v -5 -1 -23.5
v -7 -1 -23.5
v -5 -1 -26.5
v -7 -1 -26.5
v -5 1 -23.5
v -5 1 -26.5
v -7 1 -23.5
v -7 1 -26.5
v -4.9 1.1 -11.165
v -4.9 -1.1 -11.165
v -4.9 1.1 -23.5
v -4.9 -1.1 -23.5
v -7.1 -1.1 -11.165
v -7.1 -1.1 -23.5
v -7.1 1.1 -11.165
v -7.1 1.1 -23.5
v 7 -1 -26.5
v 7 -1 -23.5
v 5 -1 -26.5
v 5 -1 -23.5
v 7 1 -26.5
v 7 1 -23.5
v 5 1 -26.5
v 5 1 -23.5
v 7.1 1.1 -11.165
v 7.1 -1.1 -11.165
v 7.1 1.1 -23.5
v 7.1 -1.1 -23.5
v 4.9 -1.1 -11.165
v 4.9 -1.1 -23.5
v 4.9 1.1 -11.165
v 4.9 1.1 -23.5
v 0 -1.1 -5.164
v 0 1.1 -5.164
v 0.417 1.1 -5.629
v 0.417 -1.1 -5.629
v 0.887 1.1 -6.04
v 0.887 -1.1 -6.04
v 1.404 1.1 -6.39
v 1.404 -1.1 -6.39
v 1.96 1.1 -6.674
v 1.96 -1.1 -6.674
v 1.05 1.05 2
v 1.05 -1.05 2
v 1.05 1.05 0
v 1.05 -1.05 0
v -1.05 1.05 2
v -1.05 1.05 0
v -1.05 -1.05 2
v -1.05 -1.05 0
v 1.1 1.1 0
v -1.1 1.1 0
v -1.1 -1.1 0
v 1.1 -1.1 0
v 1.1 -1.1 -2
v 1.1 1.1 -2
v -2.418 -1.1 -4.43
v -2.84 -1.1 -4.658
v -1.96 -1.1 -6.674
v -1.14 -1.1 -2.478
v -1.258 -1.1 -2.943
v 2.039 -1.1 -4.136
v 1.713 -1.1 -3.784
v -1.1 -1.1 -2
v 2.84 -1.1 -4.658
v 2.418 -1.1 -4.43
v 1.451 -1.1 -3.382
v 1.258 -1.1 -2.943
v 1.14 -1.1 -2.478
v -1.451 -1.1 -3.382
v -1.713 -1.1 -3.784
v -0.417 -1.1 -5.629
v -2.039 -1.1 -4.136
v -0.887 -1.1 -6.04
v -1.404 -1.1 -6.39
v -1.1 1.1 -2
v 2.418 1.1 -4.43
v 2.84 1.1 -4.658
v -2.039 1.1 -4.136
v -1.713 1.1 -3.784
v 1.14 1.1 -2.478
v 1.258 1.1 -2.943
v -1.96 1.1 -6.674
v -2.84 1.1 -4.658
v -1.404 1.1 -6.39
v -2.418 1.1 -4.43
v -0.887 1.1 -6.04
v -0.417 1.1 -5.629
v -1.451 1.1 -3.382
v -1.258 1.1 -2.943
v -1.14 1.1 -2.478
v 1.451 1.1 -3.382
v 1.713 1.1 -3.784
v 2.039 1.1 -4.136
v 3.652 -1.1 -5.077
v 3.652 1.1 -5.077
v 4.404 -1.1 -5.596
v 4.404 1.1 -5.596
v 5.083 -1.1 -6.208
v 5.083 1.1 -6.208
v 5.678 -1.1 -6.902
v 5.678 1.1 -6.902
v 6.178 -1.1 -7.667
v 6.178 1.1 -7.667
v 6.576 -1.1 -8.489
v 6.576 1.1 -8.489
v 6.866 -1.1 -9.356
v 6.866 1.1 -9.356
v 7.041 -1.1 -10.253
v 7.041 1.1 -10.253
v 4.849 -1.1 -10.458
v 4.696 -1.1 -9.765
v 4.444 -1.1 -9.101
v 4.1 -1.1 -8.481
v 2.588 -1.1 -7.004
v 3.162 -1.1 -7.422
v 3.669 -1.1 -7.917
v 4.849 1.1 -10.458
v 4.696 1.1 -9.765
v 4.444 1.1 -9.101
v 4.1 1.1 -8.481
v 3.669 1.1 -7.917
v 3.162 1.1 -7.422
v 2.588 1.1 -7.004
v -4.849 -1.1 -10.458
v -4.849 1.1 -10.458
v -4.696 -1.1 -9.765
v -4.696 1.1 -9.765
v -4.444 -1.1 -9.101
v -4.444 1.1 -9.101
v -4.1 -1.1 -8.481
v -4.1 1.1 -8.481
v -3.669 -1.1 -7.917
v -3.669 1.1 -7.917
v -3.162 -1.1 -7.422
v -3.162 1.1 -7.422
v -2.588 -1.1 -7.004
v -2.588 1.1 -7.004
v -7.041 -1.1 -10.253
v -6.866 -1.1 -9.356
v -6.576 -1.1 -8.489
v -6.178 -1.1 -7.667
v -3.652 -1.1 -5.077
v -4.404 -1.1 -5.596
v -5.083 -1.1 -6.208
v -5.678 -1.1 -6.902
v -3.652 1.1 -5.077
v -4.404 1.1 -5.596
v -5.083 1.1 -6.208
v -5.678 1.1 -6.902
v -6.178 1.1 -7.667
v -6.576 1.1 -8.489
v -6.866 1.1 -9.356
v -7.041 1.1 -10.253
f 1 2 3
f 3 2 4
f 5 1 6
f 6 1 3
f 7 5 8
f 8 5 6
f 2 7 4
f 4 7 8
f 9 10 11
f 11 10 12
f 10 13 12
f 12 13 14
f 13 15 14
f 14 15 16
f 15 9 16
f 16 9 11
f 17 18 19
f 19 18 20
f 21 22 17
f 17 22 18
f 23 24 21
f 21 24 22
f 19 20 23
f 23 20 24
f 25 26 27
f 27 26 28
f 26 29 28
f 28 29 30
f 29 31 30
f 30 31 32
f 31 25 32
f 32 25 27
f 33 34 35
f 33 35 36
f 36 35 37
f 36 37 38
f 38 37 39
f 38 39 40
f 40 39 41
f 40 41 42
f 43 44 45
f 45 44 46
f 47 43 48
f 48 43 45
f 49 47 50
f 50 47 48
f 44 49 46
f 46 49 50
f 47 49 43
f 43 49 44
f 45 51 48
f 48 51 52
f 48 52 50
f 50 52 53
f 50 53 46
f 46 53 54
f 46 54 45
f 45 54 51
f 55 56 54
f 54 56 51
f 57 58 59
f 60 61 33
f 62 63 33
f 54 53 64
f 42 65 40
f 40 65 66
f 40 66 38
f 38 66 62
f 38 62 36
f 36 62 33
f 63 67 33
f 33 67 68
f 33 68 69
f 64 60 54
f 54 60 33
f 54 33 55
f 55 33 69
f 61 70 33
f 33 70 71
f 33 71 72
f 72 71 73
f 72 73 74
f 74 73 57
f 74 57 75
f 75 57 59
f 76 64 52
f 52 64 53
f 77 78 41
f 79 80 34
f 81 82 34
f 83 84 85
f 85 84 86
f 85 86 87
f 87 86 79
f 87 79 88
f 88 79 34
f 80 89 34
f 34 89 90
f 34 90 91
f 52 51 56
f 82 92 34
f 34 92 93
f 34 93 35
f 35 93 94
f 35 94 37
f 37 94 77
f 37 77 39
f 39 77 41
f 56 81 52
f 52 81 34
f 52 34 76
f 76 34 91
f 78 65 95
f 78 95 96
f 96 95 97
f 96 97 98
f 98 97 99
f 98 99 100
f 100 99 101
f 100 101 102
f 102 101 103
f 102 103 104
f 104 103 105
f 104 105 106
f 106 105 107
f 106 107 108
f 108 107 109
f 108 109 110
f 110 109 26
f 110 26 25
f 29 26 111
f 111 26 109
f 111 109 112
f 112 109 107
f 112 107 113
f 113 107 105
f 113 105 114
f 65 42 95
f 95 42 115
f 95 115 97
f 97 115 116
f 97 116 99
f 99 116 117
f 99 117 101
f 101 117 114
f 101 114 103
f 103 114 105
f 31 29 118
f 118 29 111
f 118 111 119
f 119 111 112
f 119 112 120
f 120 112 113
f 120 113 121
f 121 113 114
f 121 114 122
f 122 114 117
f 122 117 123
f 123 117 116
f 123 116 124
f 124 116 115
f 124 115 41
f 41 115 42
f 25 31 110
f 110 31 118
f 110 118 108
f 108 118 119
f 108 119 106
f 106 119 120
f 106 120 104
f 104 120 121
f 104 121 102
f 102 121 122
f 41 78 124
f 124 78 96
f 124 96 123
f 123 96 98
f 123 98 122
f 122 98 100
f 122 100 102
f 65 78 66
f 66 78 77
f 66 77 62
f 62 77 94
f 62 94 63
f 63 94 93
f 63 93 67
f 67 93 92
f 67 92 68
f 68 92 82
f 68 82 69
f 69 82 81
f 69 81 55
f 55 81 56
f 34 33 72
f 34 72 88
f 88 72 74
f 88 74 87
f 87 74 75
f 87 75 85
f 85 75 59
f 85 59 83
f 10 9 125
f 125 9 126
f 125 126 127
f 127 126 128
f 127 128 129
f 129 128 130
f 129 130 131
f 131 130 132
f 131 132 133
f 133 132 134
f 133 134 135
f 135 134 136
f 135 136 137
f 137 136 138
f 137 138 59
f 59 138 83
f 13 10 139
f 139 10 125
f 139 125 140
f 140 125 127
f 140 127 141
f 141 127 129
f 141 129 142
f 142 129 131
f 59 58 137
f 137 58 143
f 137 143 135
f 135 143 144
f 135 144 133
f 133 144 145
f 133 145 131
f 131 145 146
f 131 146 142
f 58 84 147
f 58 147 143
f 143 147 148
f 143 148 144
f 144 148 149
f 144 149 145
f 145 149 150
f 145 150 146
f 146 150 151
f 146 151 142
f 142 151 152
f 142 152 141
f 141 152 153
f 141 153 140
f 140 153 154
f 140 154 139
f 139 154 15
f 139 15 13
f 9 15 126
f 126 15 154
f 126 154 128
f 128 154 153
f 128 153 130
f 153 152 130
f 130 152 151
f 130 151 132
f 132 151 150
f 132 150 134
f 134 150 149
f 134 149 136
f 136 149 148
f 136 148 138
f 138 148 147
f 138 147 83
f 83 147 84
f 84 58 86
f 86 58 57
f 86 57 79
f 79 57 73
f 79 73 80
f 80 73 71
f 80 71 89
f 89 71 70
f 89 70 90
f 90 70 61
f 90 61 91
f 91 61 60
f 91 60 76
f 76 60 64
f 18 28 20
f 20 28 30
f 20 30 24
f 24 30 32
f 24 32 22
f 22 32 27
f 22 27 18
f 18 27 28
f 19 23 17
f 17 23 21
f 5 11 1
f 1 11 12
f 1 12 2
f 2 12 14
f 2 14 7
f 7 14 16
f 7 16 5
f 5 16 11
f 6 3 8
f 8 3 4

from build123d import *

# Parameters (mm, degrees)
SKETCH1_W           = 2.1
SKETCH1_H           = 2.1
BOSS_EXTRUDE1_DEPTH = 2
SKETCH4_W           = 2.2
SKETCH4_H           = 2.2
BOSS_EXTRUDE3_DEPTH = 2
SWEEP4_START        = -1.1
SWEEP4_DEPTH        = 2.2
SKETCH8_W           = 2.2
SKETCH8_H           = 2.2
SKETCH8_W_2         = 2
SKETCH8_H_2         = 2
CUT_EXTRUDE2_DEPTH  = 5
SKETCH9_W           = 2
SKETCH9_H           = 2
CUT_EXTRUDE3_DEPTH  = 2


# Read off the part's stored shape, not the designer's step: Sweep4
with BuildPart() as part:
    # Sketch1 → Boss-Extrude1 (new body)
    with BuildSketch(Plane.XY):
        Rectangle(SKETCH1_W, SKETCH1_H)
    extrude(amount=BOSS_EXTRUDE1_DEPTH)

    # Sketch4 → Boss-Extrude3 (add)
    with BuildSketch(Plane.XY):
        Rectangle(SKETCH4_W, SKETCH4_H)
    extrude(amount=-BOSS_EXTRUDE3_DEPTH)

    # Sweep4 outline → Sweep4 (add)
    with BuildSketch(Plane(origin=(0, 0, 0), x_dir=(1, 0, 0), z_dir=(0, 1, 0)).offset(SWEEP4_START)):
        with BuildLine():
            Line((7.09999865, 11.165148445), (7.09999919, 28.5))
            Line((7.09999919, 28.5), (4.89999919, 28.5))
            Line((4.89999919, 28.5), (4.89999865, 11.165148445))
            ThreePointArc((4.89999865, 11.165148445), (4.099633159, 8.481308894), (1.959999989, 6.674225732))
            ThreePointArc((1.959999989, 6.674225732), (-0.2669663, 4.793384792), (-1.1, 2))
            Line((-1.1, 2), (1.1, 2))
            ThreePointArc((1.1, 2), (1.573685829, 3.588395274), (2.839999687, 4.657893766))
            ThreePointArc((2.839999687, 4.657893766), (5.940285288, 7.276319376), (7.09999865, 11.165148445))
        make_face()
    sweep4 = extrude(amount=SWEEP4_DEPTH)

    # Mirror1: Sweep4 across plane
    add(sweep4.mirror(Plane(origin=(0, 0, 0), x_dir=(0, 0, 1), z_dir=(1, 0, 0))))

    # Sketch8 → Cut-Extrude2 (cut)
    with BuildSketch(Plane(origin=(0, 0, -28.5), x_dir=(-1, 0, 0), z_dir=(0, 0, -1))):
        with Locations((-5.99999919, 0)):
            Rectangle(SKETCH8_W, SKETCH8_H)
        with Locations((-5.99999919, 0)):
            Rectangle(SKETCH8_W_2, SKETCH8_H_2, mode=Mode.SUBTRACT)
    cut_extrude2 = extrude(amount=-CUT_EXTRUDE2_DEPTH, mode=Mode.SUBTRACT)

    # Sketch9 → Cut-Extrude3 (cut)
    with BuildSketch(Plane(origin=(0, 0, -28.5), x_dir=(-1, 0, 0), z_dir=(0, 0, -1))):
        with Locations((-5.99999919, 0)):
            Rectangle(SKETCH9_W, SKETCH9_H)
    cut_extrude3 = extrude(amount=-CUT_EXTRUDE3_DEPTH, mode=Mode.SUBTRACT)

    # Mirror2: Cut-Extrude2, Cut-Extrude3 across plane
    add(cut_extrude2.mirror(Plane(origin=(0, 0, 0), x_dir=(0, 0, 1), z_dir=(1, 0, 0))), mode=Mode.SUBTRACT)
    add(cut_extrude3.mirror(Plane(origin=(0, 0, 0), x_dir=(0, 0, 1), z_dir=(1, 0, 0))), mode=Mode.SUBTRACT)


solid = part.part
